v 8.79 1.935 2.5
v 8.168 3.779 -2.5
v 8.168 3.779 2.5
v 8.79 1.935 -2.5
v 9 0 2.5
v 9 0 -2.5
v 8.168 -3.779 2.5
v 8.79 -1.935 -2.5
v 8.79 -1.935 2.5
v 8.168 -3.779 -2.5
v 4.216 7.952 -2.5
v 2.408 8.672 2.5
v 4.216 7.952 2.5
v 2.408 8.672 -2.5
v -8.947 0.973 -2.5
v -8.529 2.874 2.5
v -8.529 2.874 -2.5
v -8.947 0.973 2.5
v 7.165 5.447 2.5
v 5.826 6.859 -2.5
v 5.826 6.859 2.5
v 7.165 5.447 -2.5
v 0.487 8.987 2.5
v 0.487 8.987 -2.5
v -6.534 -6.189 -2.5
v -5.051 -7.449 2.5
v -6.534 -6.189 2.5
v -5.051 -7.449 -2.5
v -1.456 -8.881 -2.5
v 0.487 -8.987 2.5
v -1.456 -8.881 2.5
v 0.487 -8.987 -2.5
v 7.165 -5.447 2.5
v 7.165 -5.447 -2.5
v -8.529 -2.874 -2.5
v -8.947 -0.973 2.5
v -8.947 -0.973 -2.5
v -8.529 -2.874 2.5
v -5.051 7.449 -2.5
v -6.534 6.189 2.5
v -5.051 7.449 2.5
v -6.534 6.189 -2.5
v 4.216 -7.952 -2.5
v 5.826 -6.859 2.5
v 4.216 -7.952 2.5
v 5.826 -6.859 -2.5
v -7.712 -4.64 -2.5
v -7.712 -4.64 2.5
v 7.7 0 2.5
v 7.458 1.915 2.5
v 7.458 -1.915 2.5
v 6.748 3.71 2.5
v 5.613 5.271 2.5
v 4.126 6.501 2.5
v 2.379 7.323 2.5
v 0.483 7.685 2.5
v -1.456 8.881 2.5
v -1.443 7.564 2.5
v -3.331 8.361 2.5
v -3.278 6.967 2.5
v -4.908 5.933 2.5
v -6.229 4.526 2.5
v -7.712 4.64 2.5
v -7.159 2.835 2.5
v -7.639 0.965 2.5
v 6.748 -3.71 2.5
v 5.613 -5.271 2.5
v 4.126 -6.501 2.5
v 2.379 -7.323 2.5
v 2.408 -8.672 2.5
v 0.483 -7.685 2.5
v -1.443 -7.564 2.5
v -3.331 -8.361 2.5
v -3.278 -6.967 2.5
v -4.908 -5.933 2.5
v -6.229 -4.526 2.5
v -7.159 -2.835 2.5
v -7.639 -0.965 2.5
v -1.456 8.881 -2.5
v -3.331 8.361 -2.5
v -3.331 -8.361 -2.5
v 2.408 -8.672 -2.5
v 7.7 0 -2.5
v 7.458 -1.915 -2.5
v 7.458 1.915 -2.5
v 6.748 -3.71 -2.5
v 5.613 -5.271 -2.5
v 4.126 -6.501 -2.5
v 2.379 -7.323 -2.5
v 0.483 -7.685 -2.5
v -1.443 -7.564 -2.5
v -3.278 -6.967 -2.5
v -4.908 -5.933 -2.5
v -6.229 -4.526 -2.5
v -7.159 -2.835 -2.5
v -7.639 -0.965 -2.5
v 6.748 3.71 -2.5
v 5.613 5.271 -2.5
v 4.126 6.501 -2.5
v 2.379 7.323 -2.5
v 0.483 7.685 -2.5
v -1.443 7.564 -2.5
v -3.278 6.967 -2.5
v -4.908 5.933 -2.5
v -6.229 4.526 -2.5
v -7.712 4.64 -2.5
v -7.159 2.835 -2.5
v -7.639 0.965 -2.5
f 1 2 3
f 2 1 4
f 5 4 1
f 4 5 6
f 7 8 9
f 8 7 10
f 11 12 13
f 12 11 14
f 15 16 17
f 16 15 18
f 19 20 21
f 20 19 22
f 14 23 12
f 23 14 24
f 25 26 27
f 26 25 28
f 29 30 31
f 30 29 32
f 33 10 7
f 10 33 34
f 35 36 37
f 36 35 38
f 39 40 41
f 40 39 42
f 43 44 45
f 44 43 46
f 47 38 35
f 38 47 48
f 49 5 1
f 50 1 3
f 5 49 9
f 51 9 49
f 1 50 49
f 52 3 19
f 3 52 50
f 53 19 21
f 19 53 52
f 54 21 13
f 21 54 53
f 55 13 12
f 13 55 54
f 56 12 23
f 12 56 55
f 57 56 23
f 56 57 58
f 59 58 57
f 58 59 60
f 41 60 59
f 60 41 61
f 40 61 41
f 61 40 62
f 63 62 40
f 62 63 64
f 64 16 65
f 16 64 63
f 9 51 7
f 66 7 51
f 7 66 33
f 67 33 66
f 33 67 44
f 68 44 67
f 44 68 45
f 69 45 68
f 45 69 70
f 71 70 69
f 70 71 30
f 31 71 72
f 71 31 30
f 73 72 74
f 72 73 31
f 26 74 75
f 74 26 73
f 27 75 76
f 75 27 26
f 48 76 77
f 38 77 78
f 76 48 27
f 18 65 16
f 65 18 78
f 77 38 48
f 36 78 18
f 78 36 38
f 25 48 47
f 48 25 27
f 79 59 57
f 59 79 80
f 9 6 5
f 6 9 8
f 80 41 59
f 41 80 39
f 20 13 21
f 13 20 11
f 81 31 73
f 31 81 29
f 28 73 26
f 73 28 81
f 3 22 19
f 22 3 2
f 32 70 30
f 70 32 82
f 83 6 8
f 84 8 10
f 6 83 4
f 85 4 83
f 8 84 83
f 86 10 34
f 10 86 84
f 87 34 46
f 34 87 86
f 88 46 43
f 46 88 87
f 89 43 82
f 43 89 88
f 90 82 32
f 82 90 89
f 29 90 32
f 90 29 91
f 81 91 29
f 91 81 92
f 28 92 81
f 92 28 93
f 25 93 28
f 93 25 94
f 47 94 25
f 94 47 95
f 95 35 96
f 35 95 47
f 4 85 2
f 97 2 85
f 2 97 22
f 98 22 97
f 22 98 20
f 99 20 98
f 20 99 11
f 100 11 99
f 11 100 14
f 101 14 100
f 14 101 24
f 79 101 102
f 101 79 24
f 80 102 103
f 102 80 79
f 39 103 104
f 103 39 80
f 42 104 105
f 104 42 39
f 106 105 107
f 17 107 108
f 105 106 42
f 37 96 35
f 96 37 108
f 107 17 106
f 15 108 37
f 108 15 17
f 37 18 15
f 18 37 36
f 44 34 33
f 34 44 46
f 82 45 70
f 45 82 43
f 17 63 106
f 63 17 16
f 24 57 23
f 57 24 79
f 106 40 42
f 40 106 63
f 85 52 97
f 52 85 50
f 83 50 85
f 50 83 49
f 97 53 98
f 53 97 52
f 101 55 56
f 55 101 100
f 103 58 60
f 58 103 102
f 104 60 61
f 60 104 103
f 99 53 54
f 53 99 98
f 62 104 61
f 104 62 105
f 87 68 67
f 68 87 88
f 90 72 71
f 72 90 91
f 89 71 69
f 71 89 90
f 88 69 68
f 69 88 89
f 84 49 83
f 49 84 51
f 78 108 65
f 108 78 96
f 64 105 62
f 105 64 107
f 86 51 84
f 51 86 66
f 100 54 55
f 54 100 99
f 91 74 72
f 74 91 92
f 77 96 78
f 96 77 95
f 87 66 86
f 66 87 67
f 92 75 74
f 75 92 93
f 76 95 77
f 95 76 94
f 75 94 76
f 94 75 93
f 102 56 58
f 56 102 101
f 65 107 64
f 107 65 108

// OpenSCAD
difference() {
    translate([0, 0, 0])
        cylinder(h=5, r1=9.0, r2=9.0, center=true);
    translate([0, 0, 0])
        cylinder(h=5, r1=7.7, r2=7.7, center=true);
}
